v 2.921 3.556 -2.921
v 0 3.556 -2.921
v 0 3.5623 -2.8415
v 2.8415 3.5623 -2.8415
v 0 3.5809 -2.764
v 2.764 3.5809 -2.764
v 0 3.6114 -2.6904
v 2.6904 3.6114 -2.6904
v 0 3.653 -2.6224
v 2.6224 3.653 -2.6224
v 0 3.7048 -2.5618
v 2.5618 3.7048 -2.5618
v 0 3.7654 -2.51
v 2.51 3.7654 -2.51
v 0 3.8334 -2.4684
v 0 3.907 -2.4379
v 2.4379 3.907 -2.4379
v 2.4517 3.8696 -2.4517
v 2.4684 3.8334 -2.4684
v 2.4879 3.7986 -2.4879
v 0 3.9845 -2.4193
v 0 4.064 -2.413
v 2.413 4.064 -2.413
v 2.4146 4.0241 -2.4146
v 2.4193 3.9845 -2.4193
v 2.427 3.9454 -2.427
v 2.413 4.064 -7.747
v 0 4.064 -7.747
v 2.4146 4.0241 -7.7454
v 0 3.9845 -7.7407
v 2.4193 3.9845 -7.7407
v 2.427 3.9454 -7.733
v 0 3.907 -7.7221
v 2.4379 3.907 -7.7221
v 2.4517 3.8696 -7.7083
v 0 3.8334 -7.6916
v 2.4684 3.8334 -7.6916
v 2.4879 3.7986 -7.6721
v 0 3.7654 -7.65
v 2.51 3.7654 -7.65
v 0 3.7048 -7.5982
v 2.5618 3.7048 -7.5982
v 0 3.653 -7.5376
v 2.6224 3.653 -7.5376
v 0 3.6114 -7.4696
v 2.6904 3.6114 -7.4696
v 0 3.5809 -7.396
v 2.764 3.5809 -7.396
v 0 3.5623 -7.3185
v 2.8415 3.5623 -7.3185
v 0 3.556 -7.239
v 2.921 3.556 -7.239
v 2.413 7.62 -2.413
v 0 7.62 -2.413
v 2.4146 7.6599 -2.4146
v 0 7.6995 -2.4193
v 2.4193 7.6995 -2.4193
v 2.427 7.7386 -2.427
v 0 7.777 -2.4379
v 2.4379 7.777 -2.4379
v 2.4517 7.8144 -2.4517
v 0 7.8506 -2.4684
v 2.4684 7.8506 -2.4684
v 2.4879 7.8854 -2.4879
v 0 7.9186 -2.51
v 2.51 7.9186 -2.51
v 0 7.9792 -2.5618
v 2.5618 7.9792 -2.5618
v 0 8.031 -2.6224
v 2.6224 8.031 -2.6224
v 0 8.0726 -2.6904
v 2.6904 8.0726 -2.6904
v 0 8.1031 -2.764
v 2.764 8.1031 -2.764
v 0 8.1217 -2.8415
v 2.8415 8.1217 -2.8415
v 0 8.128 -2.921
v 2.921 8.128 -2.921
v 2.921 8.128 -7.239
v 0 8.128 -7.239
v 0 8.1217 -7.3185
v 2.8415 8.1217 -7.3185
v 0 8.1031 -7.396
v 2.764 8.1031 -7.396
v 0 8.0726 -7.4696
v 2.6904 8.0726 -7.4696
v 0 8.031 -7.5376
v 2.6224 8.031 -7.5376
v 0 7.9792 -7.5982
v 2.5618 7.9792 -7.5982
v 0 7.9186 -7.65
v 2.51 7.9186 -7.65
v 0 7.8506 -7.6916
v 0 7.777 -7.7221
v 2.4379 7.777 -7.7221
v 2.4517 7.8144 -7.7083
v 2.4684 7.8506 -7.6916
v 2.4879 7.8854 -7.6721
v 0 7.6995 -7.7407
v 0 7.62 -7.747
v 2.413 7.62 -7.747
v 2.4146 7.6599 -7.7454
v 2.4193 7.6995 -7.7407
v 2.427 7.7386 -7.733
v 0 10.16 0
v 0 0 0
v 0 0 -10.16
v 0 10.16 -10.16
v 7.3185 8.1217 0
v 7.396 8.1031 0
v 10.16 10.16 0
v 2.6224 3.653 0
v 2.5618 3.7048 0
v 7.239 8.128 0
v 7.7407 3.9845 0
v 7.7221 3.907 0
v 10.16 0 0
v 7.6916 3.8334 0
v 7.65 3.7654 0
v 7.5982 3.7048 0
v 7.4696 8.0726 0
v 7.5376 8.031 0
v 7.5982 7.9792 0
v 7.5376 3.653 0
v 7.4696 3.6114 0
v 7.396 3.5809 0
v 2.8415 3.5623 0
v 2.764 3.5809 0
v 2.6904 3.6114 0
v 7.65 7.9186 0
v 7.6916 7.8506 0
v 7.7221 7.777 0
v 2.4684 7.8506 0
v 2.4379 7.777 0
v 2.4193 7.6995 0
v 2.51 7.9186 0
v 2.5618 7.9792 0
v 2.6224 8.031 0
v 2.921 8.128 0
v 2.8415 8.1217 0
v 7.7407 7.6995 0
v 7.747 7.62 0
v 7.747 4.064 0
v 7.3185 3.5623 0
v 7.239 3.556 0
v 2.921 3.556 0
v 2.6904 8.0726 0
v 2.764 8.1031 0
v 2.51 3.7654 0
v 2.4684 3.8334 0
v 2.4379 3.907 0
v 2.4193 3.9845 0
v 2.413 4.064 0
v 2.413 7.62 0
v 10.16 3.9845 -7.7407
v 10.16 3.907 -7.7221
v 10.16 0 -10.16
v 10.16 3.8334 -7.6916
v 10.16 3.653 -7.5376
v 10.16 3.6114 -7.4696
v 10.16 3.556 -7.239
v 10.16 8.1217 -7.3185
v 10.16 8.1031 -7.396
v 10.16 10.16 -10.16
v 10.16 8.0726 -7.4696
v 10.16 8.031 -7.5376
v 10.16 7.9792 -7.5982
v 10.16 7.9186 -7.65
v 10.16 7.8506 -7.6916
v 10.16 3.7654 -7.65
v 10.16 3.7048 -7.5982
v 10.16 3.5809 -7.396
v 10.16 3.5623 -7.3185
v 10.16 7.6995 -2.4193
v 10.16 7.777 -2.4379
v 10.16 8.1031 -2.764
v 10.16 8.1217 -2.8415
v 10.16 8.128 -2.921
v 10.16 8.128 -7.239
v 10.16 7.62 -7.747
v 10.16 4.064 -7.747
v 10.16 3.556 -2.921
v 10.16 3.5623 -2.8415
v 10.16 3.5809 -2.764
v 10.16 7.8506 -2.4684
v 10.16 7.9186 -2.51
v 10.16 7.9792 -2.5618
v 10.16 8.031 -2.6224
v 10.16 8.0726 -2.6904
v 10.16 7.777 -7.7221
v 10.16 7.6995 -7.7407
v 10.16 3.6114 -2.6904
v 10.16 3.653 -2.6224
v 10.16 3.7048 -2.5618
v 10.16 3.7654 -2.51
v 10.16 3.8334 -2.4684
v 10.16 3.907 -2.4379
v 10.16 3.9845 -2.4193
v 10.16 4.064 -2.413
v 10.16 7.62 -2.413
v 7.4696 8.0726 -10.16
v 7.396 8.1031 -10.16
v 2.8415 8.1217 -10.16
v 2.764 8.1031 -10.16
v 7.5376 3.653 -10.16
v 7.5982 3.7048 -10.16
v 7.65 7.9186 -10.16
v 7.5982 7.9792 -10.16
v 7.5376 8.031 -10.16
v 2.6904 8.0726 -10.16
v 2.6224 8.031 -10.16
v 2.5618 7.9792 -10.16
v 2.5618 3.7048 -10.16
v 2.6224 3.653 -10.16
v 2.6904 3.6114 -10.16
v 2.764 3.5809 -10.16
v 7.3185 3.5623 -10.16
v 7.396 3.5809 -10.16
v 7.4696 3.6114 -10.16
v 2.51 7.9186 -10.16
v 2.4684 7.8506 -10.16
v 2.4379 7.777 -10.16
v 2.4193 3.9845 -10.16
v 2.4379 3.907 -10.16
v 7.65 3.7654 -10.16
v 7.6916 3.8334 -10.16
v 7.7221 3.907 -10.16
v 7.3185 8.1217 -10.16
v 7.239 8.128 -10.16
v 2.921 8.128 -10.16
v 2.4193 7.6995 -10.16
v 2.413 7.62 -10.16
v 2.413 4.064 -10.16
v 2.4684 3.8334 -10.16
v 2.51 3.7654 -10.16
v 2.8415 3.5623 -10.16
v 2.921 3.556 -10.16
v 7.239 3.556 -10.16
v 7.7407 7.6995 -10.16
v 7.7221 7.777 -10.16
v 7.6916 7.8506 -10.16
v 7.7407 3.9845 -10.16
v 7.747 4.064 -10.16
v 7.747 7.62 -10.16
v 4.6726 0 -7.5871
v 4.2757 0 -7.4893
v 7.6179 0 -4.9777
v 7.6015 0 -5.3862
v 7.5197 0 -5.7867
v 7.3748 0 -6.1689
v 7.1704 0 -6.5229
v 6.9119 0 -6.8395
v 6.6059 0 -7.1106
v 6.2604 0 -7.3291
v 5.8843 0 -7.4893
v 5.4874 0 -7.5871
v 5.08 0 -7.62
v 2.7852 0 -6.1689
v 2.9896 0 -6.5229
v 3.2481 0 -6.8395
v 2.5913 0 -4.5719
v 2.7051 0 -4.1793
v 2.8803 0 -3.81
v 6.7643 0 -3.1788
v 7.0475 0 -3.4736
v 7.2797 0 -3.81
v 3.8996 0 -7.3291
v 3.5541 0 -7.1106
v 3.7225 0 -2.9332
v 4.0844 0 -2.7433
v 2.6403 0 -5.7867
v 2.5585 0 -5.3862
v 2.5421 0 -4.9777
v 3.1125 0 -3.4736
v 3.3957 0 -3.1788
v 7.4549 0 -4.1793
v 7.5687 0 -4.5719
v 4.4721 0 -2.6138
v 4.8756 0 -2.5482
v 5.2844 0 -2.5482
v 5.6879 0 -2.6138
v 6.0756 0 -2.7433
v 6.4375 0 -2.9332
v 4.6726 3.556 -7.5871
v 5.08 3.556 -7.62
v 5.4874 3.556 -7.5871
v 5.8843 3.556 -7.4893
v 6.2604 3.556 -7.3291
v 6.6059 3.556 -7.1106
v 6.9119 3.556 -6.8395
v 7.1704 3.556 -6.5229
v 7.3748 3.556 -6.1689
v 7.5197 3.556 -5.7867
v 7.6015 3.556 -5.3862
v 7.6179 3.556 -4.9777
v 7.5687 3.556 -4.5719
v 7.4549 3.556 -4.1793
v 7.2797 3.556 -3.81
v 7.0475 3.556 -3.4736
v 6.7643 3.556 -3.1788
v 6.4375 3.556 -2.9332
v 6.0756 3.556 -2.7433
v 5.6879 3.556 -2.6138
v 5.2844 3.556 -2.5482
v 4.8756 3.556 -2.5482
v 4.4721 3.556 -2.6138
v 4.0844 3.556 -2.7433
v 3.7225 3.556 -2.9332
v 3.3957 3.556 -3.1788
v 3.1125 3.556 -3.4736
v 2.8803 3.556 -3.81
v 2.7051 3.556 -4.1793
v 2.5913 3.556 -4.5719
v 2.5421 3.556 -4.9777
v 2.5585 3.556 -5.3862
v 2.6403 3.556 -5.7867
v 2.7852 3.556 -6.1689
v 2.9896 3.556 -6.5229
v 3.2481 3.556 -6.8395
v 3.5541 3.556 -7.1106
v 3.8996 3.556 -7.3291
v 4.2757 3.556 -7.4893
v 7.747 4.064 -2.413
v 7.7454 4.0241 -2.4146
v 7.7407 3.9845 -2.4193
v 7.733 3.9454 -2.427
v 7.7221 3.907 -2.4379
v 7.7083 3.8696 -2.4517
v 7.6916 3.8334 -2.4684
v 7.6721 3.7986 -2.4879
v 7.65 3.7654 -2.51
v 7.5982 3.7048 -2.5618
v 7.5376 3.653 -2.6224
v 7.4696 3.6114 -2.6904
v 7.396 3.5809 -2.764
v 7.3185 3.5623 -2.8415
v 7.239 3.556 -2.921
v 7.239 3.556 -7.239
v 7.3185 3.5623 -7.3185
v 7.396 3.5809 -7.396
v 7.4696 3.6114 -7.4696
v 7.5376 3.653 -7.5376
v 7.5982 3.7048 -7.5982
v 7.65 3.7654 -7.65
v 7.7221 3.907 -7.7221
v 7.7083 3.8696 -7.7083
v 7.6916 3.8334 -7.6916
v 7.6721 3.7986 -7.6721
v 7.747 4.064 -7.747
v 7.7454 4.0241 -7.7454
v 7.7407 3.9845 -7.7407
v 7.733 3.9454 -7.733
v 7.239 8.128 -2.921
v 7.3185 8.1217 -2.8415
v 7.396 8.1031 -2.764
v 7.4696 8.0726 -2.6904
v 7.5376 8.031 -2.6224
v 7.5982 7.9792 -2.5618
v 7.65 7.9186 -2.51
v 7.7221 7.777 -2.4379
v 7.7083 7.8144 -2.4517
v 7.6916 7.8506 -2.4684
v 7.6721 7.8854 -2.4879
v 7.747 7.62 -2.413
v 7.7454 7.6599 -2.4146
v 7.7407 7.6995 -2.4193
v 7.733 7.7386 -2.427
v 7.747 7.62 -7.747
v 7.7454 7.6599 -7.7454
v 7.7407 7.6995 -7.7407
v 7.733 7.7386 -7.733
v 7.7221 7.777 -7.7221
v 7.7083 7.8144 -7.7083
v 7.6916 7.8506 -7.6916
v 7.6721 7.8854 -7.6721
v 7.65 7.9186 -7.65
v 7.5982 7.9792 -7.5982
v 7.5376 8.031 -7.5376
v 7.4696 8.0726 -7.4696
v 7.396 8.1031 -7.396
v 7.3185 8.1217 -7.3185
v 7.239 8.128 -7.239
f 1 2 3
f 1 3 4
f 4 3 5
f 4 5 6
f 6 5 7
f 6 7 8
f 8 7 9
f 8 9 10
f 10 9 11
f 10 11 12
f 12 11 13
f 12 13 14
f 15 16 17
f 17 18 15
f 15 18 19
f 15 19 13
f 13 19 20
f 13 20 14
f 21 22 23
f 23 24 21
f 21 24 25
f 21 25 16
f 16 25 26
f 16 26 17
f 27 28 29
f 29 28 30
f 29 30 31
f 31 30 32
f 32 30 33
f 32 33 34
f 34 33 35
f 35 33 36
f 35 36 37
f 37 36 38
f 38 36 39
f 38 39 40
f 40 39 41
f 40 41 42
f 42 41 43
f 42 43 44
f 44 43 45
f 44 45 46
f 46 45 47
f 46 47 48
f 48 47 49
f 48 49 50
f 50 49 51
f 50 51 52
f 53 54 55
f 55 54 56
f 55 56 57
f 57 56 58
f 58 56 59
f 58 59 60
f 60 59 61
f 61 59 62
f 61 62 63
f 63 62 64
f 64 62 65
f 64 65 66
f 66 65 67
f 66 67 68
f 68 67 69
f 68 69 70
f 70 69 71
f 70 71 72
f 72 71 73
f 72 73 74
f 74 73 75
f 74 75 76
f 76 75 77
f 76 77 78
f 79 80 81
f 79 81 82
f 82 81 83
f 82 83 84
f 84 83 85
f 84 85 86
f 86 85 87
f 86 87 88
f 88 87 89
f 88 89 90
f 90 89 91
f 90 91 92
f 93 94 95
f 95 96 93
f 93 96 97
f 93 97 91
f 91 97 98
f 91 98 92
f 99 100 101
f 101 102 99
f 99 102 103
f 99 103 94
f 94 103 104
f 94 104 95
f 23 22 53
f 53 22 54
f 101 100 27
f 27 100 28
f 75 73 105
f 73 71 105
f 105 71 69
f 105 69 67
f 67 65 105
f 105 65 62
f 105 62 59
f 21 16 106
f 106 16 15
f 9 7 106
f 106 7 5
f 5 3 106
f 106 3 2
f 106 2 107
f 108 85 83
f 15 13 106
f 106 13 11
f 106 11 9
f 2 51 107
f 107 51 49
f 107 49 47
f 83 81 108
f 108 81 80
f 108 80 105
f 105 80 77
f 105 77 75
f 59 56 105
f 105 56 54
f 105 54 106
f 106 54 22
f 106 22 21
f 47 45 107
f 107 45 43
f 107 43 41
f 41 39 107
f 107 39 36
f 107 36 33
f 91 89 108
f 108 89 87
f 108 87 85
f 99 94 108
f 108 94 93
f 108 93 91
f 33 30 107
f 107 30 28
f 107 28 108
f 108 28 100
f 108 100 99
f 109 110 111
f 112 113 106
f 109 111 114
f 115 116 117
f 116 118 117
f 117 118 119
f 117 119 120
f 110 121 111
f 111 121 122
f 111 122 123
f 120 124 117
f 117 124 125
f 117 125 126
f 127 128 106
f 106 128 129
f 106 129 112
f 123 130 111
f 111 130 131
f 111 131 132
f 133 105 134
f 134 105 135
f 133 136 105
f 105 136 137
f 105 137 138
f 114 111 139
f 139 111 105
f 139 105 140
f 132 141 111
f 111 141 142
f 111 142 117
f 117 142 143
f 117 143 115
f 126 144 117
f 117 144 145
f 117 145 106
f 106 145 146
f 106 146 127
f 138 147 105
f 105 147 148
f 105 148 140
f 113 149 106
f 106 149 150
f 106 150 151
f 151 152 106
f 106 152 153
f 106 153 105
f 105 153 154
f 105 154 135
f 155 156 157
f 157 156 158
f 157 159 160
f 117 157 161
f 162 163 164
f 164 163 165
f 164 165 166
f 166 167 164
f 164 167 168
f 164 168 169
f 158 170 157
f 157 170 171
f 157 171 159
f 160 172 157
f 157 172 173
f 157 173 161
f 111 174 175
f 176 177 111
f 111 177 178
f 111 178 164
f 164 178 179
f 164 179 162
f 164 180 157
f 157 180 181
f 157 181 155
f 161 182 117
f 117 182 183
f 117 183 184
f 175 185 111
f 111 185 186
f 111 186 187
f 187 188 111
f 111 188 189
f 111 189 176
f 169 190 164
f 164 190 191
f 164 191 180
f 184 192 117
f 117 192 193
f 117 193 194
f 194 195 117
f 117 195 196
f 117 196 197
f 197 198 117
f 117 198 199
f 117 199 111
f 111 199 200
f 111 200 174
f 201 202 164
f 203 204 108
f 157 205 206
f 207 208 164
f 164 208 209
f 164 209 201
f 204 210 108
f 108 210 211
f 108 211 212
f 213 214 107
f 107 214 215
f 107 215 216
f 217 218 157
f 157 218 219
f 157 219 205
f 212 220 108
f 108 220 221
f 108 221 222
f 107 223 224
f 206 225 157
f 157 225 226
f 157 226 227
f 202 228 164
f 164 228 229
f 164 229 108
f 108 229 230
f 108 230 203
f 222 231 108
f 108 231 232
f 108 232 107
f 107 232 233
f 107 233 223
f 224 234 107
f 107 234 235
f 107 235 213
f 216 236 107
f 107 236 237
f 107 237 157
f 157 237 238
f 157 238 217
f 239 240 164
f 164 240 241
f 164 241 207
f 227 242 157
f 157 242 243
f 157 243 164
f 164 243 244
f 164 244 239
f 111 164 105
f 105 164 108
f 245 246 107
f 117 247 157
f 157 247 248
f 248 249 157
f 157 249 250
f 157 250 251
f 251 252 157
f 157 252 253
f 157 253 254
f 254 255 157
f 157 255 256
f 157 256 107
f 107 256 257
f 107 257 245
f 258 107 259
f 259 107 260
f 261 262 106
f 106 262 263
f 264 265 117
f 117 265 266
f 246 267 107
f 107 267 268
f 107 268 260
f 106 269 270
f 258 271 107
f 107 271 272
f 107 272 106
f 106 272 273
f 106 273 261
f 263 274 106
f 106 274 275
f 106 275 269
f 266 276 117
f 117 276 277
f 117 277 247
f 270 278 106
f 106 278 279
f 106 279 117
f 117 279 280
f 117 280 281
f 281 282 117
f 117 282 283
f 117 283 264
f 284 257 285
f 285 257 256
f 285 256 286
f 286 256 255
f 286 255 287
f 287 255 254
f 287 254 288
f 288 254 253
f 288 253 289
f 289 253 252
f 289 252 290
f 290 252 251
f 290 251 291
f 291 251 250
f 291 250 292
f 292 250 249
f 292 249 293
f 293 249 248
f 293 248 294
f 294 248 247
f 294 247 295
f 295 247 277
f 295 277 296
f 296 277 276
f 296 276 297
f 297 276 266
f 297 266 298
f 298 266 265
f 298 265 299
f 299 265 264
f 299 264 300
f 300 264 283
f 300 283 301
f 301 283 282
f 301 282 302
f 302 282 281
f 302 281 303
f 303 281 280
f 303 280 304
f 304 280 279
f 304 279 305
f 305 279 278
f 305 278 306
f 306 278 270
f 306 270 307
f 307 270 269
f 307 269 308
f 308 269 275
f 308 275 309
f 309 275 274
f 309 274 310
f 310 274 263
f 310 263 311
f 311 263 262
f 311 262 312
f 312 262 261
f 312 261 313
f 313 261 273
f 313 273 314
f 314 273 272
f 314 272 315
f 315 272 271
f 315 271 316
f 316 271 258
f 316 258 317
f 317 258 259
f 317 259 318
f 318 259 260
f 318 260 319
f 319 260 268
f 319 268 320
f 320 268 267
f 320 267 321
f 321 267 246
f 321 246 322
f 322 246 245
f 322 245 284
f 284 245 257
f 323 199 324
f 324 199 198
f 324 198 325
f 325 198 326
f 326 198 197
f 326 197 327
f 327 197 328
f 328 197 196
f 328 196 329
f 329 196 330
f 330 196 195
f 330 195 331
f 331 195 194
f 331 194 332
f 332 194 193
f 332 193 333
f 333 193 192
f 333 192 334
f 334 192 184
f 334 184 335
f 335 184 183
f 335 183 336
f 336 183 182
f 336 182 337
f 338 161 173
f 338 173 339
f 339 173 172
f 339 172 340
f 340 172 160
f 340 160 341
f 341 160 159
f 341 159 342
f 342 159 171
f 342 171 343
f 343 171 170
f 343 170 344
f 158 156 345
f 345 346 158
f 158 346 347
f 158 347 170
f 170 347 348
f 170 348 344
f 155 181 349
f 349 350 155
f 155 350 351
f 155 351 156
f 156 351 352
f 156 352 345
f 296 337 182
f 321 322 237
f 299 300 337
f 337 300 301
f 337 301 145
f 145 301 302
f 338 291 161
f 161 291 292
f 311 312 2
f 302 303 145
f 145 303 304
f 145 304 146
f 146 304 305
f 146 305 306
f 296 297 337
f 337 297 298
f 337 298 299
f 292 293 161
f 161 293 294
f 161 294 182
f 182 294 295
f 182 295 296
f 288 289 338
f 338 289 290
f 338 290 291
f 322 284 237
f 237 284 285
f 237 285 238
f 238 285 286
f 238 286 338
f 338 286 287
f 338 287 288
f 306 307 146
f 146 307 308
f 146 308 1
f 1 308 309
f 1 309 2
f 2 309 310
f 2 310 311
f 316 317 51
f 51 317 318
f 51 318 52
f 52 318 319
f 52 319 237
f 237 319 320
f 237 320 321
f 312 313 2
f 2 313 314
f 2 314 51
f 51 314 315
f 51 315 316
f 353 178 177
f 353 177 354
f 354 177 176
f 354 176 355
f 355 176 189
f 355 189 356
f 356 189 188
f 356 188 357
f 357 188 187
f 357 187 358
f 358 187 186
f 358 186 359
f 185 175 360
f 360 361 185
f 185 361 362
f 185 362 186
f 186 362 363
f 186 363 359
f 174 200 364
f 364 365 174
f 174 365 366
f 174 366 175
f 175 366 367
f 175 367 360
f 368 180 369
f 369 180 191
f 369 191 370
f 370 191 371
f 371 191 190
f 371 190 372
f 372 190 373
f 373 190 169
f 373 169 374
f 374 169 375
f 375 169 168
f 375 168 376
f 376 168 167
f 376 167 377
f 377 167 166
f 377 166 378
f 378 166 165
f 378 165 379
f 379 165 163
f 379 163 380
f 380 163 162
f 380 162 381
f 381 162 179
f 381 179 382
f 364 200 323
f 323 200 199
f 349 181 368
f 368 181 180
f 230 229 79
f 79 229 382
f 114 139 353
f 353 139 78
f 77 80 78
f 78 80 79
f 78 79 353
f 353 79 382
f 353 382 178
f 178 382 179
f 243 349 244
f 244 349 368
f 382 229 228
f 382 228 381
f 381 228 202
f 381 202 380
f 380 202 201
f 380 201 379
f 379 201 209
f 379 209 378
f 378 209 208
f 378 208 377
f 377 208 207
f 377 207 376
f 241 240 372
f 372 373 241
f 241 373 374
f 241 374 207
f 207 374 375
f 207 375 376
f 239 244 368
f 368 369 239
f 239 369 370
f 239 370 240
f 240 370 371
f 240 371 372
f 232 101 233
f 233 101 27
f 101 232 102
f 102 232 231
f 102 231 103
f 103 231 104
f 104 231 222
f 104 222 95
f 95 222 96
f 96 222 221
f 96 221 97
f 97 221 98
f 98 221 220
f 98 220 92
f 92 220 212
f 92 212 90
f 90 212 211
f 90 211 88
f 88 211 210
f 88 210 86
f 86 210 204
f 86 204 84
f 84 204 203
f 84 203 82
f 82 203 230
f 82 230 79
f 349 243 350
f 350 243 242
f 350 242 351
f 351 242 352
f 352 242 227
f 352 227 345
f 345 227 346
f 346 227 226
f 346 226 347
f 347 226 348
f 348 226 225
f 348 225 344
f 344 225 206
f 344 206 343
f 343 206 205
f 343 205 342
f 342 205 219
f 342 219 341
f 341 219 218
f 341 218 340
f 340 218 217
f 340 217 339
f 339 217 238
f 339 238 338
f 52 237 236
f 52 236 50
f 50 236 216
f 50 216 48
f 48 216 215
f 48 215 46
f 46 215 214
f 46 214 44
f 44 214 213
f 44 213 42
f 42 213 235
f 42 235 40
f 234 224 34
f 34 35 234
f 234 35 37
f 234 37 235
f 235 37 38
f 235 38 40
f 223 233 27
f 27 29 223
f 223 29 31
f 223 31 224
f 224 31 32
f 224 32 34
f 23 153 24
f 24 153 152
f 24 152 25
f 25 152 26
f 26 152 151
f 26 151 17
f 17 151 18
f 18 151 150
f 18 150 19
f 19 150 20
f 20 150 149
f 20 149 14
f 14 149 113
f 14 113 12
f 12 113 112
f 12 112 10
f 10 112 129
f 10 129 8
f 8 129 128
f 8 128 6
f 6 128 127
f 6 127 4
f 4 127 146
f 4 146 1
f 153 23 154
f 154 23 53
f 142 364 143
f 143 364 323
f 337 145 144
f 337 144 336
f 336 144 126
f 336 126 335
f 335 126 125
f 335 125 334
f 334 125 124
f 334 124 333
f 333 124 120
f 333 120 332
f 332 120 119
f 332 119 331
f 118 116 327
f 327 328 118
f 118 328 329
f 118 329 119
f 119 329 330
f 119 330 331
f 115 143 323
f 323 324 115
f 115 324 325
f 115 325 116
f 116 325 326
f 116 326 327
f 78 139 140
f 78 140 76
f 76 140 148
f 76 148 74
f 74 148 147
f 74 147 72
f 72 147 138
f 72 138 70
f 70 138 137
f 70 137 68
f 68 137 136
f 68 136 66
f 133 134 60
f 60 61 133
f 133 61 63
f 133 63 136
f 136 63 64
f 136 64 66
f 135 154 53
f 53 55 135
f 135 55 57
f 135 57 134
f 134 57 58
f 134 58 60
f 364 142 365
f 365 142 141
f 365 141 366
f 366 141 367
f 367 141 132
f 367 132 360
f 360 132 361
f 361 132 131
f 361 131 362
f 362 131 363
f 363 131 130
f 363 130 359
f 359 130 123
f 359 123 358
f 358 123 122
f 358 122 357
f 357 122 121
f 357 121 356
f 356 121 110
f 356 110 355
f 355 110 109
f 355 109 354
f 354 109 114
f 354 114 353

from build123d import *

# Parameters (mm, degrees)
SKETCH2_W           = 10.16
SKETCH2_H           = 10.16
BOSS_EXTRUDE1_DEPTH = 10.16
SKETCH3_R           = 2.54
CUT_EXTRUDE1_DEPTH  = 8.128
CUT_EXTRUDE2_DEPTH  = 10.16
CUT_EXTRUDE3_DEPTH  = 10.16


with BuildPart() as part:
    # Sketch2 → Boss-Extrude1 (new body)
    with BuildSketch(Plane(origin=(0, 0, 0), x_dir=(1, 0, 0), z_dir=(0, 1, 0))):
        with Locations((5.08, 5.08)):
            Rectangle(SKETCH2_W, SKETCH2_H)
    extrude(amount=BOSS_EXTRUDE1_DEPTH)

    # Sketch3 → Cut-Extrude1 (cut)
    with BuildSketch(Plane(origin=(0, 0, 0), x_dir=(-1, 0, 0), z_dir=(0, -1, 0))):
        with Locations((-5.08, 5.08)):
            Circle(SKETCH3_R)
    extrude(amount=-CUT_EXTRUDE1_DEPTH, mode=Mode.SUBTRACT)

    # Sketch6 → Cut-Extrude2 (cut)
    with BuildSketch(Plane(origin=(10.16, 0, 0), x_dir=(0, 0, -1), z_dir=(1, 0, 0))):
        with BuildLine():
            Line((2.921, 8.128), (7.239, 8.128))
            ThreePointArc((7.239, 8.128), (7.598210245, 7.979210245), (7.747, 7.62))
            Line((7.747, 7.62), (7.747, 4.064))
            ThreePointArc((7.747, 4.064), (7.598210245, 3.704789755), (7.239, 3.556))
            Line((7.239, 3.556), (2.921, 3.556))
            ThreePointArc((2.921, 3.556), (2.561789755, 3.704789755), (2.413, 4.064))
            Line((2.413, 4.064), (2.413, 7.62))
            ThreePointArc((2.413, 7.62), (2.561789755, 7.979210245), (2.921, 8.128))
        make_face()
    extrude(amount=-CUT_EXTRUDE2_DEPTH, mode=Mode.SUBTRACT)

    # Sketch4 → Cut-Extrude3 (cut)
    with BuildSketch(Plane.XY):
        with BuildLine():
            Line((2.921, 8.128), (7.239, 8.128))
            ThreePointArc((7.239, 8.128), (7.598210245, 7.979210245), (7.747, 7.62))
            Line((7.747, 7.62), (7.747, 4.064))
            ThreePointArc((7.747, 4.064), (7.598210245, 3.704789755), (7.239, 3.556))
            Line((7.239, 3.556), (2.921, 3.556))
            ThreePointArc((2.921, 3.556), (2.561789755, 3.704789755), (2.413, 4.064))
            Line((2.413, 4.064), (2.413, 7.62))
            ThreePointArc((2.413, 7.62), (2.561789755, 7.979210245), (2.921, 8.128))
        make_face()
    extrude(amount=-CUT_EXTRUDE3_DEPTH, mode=Mode.SUBTRACT)


solid = part.part
